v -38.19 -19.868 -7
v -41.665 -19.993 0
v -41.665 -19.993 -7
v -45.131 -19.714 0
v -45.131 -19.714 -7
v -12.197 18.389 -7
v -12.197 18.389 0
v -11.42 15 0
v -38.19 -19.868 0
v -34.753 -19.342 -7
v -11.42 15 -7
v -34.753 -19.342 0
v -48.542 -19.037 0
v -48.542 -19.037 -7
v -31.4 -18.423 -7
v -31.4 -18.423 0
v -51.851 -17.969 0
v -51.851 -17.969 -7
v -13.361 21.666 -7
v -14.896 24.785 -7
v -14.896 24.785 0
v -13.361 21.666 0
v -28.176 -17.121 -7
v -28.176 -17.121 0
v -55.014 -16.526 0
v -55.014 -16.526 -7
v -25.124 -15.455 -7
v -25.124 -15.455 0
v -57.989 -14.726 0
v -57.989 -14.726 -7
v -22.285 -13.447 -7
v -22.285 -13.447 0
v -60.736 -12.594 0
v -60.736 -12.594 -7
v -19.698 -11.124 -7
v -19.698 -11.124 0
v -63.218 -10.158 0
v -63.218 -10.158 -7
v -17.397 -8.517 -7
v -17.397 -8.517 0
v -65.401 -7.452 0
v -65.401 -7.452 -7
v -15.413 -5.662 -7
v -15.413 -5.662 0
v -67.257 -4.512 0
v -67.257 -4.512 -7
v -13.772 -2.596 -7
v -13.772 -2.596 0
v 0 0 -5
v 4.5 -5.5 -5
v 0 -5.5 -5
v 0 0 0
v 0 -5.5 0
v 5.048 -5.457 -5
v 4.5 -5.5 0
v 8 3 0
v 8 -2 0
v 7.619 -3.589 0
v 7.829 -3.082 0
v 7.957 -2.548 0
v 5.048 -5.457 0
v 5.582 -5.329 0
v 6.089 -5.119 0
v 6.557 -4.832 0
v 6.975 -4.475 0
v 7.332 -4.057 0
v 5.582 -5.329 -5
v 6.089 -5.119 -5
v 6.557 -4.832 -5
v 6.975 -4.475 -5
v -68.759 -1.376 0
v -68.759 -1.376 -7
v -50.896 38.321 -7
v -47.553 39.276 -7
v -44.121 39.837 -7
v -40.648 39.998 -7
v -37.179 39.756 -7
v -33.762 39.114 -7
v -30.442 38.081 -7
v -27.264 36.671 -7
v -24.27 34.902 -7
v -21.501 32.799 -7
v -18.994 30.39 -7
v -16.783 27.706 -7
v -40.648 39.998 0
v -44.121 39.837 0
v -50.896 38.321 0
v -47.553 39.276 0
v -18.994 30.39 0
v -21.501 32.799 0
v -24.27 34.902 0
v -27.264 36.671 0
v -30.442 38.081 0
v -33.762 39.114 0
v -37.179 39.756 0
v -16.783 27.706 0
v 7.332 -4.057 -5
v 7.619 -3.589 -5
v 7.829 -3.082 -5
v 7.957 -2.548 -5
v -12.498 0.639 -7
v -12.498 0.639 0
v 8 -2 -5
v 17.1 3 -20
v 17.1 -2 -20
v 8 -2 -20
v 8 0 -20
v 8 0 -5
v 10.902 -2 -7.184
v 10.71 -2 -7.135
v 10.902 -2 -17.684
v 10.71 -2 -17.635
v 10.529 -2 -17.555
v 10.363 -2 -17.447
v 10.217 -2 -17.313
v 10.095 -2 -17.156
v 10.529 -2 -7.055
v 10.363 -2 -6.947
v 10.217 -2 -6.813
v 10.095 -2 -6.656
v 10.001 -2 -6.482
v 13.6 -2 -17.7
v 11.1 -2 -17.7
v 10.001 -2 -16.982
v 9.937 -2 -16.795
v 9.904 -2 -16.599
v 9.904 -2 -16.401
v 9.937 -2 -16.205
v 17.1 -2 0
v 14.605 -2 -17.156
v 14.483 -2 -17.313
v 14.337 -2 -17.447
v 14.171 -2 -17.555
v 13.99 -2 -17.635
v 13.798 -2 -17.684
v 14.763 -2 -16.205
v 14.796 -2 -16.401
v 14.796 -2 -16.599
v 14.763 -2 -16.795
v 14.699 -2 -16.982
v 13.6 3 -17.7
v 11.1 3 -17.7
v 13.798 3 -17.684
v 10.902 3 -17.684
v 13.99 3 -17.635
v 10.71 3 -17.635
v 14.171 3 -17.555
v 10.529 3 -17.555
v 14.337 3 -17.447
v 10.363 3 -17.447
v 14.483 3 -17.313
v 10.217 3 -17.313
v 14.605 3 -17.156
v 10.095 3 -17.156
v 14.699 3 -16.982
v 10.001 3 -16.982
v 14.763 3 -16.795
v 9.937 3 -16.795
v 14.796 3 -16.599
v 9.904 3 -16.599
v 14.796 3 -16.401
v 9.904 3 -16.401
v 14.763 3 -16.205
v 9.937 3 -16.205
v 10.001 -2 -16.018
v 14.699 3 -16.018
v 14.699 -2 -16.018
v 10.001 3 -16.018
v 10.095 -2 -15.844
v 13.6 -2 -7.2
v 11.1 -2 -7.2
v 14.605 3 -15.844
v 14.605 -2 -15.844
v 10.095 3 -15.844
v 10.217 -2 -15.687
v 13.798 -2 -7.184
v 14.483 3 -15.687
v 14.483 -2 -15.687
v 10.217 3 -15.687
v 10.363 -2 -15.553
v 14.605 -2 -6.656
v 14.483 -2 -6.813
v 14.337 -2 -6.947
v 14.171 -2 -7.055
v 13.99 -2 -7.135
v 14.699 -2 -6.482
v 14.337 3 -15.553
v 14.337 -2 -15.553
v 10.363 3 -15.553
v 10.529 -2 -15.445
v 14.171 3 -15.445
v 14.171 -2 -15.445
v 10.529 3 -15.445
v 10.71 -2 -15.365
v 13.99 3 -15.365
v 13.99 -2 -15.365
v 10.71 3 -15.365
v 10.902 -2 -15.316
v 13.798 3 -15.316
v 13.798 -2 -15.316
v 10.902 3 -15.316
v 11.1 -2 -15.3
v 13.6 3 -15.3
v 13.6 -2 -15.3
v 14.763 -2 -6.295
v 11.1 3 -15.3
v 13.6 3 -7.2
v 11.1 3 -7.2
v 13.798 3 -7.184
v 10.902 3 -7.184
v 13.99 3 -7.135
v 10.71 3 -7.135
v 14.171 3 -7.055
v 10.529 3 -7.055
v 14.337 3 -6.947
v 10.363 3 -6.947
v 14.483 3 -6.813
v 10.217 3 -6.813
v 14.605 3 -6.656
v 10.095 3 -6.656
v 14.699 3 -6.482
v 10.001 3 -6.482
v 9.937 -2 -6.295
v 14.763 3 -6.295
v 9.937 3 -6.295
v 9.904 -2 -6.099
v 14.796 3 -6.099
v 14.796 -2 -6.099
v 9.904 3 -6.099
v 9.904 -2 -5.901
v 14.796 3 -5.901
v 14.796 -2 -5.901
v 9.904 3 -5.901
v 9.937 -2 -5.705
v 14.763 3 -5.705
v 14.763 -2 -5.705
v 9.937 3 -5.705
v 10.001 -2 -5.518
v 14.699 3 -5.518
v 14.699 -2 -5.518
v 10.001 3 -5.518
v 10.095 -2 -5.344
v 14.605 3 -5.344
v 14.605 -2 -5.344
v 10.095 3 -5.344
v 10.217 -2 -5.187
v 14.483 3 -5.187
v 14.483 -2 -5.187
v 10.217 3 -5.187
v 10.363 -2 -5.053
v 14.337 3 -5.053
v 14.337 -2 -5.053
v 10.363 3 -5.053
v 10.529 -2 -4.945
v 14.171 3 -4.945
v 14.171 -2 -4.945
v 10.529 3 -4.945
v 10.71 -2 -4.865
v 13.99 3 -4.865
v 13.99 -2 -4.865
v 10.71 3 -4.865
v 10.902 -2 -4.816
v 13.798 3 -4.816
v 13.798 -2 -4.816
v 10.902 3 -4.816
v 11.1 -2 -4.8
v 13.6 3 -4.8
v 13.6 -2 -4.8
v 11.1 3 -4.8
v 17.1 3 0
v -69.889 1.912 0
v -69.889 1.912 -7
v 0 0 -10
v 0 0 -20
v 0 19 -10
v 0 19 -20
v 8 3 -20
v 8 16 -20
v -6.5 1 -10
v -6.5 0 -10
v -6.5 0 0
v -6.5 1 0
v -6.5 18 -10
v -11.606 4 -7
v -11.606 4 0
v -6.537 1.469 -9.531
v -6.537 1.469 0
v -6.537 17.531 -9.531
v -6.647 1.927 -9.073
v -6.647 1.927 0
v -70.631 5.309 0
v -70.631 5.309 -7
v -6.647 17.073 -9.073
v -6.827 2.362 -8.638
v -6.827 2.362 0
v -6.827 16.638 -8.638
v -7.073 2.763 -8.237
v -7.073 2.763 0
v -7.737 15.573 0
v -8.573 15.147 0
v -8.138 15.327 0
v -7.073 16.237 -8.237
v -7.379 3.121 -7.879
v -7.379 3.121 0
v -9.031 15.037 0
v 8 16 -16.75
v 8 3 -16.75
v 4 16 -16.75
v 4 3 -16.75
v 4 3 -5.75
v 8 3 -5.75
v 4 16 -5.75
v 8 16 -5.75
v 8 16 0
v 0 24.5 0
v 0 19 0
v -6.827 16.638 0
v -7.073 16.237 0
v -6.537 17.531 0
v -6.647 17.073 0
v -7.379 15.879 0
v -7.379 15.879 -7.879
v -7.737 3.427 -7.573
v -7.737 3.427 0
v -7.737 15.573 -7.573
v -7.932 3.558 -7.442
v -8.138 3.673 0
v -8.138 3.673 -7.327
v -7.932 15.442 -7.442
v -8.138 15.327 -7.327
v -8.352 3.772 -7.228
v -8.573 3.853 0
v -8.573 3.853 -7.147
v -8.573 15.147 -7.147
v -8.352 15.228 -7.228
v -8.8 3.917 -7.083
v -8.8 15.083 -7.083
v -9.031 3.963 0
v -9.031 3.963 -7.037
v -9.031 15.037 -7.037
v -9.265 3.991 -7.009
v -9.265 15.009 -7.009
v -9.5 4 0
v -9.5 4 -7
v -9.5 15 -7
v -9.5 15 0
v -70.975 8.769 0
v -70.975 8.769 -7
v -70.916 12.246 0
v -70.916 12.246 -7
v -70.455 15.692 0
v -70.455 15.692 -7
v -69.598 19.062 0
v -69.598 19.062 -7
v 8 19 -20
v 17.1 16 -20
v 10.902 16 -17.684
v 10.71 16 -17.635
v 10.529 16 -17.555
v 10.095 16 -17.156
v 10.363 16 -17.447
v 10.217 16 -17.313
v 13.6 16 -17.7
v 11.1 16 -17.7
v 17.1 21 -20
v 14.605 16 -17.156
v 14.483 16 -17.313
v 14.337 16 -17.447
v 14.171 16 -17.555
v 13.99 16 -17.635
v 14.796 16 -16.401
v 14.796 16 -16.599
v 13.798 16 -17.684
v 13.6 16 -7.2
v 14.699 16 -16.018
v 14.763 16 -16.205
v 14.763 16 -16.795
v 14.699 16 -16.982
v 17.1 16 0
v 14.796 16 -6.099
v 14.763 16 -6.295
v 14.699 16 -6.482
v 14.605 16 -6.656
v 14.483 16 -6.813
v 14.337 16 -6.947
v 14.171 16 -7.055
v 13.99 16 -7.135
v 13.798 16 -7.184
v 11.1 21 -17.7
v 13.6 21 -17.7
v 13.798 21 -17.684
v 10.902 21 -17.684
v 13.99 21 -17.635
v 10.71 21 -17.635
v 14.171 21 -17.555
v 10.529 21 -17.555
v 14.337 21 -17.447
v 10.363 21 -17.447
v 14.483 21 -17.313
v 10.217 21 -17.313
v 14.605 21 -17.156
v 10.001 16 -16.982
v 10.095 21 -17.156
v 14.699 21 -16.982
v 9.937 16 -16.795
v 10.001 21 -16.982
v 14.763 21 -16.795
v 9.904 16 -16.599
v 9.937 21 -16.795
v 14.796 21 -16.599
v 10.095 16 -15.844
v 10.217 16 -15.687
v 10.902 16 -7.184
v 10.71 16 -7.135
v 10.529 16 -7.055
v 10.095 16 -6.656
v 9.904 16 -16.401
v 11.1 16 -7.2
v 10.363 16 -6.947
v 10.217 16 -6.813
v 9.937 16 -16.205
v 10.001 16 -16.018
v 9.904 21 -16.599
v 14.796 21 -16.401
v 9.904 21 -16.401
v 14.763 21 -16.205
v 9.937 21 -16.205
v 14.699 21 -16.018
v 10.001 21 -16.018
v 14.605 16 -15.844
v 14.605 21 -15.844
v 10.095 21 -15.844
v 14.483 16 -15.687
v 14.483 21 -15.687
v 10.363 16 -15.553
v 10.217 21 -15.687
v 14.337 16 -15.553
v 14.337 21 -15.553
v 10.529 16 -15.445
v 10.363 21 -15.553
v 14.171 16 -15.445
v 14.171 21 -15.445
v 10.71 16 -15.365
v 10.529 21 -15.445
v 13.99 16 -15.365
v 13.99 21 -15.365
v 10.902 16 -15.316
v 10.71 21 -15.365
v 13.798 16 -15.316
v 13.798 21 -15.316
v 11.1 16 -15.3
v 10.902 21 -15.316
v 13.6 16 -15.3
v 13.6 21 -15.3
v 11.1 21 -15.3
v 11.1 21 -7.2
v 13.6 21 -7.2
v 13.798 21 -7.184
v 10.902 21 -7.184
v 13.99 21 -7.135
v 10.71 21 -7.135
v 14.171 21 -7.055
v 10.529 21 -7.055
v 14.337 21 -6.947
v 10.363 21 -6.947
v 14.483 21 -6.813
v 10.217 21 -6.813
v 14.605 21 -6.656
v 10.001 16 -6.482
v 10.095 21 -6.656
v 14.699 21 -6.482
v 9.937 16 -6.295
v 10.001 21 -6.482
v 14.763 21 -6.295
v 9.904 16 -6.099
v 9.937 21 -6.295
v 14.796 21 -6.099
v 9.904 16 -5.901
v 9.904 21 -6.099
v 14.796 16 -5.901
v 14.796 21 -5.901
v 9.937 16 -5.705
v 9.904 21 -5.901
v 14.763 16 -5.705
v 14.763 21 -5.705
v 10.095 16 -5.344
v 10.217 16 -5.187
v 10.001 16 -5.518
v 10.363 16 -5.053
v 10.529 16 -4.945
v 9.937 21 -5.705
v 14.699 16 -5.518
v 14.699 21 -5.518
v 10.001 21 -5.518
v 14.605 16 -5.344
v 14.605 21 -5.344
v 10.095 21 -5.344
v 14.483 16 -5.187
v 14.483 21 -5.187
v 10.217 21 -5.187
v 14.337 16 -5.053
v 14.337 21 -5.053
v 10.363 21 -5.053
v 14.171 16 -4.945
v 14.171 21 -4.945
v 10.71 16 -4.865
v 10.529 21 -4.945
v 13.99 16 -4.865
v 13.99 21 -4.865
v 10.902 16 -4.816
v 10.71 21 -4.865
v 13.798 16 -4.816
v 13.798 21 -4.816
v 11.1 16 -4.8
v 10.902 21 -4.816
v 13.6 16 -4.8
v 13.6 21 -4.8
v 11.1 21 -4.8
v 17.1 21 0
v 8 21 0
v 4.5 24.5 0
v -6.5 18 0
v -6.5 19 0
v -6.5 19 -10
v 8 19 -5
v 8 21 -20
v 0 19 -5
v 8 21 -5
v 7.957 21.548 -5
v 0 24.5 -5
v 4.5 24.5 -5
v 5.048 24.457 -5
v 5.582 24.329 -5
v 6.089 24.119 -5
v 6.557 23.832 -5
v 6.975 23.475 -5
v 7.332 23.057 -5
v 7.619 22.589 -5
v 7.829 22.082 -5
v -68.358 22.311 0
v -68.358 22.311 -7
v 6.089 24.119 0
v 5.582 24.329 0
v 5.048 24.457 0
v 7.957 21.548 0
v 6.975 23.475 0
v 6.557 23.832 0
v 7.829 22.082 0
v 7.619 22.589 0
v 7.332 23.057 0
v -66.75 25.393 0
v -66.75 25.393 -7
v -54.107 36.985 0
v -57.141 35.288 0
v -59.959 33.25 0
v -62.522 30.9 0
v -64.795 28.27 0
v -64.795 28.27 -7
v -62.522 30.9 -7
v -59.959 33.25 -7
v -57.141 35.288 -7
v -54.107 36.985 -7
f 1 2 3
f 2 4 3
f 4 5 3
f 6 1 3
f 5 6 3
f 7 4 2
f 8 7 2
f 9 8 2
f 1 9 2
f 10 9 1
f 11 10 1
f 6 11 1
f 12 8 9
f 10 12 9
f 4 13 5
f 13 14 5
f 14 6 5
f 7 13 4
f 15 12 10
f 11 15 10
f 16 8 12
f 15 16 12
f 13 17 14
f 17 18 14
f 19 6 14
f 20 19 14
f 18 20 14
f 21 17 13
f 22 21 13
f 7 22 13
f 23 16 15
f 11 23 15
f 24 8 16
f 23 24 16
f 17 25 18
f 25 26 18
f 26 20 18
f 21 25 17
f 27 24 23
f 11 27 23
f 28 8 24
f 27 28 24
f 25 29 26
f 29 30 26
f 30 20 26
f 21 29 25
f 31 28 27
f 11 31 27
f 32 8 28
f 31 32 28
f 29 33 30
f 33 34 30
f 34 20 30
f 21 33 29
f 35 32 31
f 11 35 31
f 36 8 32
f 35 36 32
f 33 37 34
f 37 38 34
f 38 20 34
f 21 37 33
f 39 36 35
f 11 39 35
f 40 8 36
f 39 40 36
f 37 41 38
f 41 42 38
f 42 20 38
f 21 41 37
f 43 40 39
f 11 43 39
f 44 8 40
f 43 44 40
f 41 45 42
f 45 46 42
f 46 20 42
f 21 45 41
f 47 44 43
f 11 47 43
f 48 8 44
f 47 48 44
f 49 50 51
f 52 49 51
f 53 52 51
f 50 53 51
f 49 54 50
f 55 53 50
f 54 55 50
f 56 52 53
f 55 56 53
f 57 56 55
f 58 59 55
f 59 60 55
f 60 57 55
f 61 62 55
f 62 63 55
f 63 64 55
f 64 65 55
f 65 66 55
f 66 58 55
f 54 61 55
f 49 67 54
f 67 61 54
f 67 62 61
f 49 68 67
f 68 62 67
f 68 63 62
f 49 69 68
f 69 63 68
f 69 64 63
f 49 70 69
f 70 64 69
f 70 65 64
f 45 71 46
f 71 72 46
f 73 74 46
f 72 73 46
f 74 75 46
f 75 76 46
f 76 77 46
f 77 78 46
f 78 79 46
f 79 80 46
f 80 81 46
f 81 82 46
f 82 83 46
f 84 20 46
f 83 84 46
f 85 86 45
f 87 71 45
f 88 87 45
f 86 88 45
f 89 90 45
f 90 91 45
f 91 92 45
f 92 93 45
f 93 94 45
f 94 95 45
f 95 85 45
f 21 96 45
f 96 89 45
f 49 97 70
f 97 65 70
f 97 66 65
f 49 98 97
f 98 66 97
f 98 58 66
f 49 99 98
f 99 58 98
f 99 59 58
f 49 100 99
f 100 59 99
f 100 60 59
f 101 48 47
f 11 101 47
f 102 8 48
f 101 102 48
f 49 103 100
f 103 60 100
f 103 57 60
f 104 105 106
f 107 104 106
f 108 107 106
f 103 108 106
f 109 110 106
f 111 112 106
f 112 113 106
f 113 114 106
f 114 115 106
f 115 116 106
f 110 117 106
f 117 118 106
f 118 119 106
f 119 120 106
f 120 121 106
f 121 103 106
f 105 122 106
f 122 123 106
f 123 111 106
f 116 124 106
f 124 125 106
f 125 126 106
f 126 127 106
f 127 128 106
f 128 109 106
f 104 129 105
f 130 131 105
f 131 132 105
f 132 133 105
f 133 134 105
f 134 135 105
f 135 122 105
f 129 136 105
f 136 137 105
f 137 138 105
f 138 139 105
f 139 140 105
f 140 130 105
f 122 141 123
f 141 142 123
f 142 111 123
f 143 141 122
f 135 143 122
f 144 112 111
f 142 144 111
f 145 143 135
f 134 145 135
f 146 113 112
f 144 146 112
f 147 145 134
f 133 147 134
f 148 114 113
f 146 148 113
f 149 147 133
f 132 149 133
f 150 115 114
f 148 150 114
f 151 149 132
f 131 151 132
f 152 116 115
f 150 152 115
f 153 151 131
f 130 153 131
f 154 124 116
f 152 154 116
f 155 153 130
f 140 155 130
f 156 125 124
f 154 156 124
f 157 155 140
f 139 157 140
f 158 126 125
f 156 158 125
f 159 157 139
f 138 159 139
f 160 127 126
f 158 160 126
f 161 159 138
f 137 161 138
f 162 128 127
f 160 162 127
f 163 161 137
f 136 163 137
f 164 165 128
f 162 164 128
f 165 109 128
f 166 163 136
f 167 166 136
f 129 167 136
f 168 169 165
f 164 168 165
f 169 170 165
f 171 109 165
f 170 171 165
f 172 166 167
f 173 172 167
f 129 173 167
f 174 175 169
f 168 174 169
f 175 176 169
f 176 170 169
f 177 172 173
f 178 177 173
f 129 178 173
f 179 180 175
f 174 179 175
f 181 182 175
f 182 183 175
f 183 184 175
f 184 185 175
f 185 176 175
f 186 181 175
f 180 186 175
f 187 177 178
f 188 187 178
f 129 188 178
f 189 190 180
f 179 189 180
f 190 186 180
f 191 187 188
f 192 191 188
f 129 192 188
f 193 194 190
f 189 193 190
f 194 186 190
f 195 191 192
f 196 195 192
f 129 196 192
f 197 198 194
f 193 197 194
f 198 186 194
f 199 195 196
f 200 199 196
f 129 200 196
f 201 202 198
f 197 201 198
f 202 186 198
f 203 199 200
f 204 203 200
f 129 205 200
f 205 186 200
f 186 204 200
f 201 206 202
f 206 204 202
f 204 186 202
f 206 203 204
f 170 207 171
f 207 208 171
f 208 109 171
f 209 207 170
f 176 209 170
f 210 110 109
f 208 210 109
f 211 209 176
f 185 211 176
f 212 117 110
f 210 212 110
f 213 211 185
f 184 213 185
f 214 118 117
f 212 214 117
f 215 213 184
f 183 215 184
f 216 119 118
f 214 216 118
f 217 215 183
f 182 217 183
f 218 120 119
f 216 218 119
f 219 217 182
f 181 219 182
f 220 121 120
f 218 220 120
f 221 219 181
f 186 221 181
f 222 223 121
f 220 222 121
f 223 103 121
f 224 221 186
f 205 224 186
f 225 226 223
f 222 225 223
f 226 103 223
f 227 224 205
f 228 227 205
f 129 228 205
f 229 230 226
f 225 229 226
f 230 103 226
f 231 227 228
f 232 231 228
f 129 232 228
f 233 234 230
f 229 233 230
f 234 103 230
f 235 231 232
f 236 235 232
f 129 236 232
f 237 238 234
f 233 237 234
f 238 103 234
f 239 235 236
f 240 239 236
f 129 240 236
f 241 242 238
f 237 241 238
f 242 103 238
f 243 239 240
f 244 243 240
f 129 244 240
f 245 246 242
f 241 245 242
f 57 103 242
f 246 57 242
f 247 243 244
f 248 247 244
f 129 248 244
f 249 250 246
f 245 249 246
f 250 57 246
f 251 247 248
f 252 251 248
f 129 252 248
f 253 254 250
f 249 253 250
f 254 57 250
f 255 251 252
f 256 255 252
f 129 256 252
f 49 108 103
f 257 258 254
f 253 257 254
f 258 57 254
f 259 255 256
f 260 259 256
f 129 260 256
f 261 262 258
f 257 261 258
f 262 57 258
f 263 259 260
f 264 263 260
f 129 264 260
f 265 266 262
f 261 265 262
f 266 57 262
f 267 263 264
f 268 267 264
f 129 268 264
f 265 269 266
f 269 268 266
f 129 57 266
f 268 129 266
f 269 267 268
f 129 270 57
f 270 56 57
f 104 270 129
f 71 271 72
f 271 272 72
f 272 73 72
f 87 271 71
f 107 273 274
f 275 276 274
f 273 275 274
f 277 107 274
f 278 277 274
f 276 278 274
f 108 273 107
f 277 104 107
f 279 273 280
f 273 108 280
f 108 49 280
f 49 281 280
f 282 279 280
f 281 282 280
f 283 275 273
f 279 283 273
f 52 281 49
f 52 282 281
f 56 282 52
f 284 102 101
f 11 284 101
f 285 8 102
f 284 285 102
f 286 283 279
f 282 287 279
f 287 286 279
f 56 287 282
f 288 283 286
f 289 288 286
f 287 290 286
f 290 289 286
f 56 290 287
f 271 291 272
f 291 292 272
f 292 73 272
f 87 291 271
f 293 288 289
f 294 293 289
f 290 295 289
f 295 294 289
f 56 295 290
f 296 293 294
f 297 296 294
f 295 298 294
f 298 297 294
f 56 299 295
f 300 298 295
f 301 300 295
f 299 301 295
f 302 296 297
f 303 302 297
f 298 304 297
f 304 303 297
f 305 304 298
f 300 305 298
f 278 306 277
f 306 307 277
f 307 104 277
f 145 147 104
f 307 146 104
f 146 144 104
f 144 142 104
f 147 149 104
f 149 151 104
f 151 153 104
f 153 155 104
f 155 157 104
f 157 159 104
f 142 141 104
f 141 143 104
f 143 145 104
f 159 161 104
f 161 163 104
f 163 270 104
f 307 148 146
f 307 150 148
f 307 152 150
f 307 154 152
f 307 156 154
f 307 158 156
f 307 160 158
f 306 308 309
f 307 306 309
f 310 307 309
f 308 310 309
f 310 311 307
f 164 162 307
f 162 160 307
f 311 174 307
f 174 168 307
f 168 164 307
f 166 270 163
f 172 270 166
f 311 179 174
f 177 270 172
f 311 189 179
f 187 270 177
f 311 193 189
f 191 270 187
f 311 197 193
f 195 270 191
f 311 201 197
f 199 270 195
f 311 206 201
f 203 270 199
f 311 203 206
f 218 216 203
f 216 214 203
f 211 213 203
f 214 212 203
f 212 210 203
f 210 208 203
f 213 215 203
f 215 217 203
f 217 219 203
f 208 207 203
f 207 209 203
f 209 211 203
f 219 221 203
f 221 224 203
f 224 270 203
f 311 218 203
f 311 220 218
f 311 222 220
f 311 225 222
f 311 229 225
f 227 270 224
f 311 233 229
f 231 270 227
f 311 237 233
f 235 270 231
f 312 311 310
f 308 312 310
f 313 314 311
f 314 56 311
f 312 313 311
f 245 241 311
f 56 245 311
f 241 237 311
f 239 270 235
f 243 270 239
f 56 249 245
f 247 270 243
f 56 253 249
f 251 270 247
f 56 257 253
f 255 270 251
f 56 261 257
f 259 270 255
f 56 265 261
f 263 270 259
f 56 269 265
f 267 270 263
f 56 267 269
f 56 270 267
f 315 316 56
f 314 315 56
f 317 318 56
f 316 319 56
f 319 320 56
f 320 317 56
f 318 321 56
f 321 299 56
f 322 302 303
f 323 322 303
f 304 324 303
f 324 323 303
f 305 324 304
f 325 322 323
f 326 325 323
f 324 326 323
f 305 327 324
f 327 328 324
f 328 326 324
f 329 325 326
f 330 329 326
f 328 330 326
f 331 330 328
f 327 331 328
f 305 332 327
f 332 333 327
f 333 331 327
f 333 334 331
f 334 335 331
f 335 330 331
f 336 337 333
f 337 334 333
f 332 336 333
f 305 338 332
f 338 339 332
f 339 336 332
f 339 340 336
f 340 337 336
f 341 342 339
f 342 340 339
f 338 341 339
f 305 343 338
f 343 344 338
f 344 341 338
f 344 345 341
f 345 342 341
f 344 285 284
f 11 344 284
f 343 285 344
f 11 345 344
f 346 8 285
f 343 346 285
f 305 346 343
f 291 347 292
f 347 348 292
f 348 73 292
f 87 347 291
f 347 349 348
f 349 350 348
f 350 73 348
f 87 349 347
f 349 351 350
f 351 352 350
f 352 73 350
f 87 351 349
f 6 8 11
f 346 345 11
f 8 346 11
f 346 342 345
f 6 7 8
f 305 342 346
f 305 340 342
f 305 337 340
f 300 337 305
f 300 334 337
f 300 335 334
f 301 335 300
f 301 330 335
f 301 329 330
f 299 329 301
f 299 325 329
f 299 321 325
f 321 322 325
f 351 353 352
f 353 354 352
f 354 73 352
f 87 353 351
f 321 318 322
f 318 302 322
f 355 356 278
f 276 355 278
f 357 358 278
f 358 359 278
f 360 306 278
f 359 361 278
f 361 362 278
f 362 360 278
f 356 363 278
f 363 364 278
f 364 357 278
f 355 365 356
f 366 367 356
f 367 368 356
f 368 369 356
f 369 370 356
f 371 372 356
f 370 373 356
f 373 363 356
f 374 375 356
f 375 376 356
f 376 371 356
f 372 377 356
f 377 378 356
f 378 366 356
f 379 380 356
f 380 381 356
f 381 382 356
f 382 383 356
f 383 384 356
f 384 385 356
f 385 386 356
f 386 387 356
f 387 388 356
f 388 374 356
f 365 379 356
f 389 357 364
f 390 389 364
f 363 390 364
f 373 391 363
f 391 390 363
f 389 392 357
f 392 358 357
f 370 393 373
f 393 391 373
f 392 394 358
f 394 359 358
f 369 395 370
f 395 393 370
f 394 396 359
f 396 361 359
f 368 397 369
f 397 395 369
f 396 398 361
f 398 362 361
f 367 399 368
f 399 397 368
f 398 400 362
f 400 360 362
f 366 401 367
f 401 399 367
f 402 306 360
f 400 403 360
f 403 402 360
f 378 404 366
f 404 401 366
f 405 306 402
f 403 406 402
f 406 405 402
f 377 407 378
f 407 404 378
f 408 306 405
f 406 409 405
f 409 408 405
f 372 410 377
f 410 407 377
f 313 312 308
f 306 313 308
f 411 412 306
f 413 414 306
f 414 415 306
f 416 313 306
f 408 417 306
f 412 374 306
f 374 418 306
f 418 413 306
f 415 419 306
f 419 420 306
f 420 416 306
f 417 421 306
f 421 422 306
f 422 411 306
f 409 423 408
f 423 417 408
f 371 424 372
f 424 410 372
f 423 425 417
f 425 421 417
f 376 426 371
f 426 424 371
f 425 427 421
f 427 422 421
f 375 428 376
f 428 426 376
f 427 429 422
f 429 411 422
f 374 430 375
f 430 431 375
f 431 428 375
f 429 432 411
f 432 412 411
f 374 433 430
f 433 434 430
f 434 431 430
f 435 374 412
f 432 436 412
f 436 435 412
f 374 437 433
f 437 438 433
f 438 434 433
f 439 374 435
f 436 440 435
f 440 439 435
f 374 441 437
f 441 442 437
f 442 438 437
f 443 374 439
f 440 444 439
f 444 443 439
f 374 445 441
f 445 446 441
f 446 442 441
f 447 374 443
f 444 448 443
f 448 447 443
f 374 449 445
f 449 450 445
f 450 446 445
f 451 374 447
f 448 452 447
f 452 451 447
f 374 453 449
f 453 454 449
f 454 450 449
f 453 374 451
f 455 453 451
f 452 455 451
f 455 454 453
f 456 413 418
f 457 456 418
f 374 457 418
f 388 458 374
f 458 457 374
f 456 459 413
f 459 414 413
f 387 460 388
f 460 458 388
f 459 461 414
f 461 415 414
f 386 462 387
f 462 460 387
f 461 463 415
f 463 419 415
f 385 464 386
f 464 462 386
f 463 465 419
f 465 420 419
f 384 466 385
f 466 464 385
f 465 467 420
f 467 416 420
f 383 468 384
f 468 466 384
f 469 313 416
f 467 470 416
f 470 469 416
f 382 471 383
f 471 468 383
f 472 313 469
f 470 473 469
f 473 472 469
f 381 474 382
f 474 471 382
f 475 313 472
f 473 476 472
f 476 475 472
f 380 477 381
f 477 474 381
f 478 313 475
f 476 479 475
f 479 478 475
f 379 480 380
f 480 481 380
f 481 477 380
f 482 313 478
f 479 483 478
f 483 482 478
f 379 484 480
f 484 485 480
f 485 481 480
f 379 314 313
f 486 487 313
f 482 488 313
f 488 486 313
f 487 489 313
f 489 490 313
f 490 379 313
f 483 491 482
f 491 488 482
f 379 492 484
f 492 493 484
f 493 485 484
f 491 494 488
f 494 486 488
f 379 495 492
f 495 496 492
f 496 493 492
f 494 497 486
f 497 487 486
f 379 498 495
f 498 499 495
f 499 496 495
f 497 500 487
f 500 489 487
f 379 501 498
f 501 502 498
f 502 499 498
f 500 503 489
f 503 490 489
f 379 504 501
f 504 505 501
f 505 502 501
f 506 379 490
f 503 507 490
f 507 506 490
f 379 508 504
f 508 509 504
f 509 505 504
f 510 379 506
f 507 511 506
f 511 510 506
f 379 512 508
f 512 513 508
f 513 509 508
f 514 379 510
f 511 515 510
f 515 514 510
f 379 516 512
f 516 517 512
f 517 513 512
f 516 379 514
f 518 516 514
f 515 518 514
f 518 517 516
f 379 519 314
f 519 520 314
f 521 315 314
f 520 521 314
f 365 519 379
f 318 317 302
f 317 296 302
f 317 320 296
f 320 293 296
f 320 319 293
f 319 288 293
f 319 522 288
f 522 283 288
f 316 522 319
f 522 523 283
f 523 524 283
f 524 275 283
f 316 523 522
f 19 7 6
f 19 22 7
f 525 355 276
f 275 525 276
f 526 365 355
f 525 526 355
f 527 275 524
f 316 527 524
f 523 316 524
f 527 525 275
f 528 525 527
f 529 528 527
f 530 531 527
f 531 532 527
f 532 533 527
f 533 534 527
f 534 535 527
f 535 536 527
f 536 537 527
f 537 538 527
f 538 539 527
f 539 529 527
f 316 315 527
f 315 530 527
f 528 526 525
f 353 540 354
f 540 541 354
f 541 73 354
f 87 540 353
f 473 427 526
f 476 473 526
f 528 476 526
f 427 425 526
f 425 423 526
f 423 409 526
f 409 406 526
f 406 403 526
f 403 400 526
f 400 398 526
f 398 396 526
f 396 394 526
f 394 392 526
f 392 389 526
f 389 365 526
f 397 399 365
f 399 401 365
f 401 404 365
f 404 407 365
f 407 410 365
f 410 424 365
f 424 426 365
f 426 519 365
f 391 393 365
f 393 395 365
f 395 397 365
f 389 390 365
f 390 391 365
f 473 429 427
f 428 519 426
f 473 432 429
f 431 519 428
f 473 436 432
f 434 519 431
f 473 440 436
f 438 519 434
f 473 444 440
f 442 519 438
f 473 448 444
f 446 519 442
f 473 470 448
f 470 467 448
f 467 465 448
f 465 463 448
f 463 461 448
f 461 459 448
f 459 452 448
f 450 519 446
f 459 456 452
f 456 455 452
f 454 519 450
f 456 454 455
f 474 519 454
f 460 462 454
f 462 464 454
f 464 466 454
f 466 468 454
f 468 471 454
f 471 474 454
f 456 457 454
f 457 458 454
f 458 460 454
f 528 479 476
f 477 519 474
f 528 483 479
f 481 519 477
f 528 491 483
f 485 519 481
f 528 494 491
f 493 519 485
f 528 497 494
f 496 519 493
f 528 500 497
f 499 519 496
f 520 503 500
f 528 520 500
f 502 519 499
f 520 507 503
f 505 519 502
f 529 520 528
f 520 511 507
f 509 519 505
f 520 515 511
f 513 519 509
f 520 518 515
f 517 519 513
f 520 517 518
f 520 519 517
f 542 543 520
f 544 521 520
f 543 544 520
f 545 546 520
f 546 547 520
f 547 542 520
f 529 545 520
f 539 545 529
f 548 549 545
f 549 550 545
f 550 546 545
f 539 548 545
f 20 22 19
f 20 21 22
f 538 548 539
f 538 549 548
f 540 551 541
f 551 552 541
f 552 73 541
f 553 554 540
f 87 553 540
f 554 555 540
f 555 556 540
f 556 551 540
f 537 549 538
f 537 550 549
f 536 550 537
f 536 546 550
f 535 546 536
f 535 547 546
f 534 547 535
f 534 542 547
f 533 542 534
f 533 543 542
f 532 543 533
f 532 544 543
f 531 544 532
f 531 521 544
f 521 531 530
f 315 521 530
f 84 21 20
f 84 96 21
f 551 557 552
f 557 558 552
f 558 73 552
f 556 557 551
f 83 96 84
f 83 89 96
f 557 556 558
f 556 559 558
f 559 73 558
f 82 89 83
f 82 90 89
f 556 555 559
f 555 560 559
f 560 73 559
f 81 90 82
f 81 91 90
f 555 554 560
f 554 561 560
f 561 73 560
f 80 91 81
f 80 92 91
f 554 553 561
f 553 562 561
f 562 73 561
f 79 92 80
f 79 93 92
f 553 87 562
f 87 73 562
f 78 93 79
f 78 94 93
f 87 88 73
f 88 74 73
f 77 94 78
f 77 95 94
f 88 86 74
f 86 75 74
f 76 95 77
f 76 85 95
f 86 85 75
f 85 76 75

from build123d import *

# Parameters (mm, degrees)
SKETCH_1_W          = 10
SKETCH_1_H          = 19
EXTRUDE_1_DEPTH     = 6.5
EXTRUDE_2_DEPTH     = 7
FILLET_1_R          = 3
SKETCH_3_W          = 5
SKETCH_3_H          = 30
EXTRUDE_3_DEPTH     = 8
SKETCH_4_W          = 8
SKETCH_4_H          = 19
EXTRUDE_4_DEPTH     = 15
SKETCH_6_W          = 11
SKETCH_6_H          = 13
CUT_EXTRUDE_1_DEPTH = 4
SKETCH_8_W          = 9.1
SKETCH_8_H          = 20
EXTRUDE_5_DEPTH     = 3
SKETCH_8_2_W        = 9.1
SKETCH_8_2_H        = 20
EXTRUDE_6_DEPTH     = 2
FILLET_2_R          = 3.5
FILLET_3_R          = 3


with BuildPart() as part:
    # 草圖1 → 填料-伸長1 (new body)
    with BuildSketch(Plane(origin=(0, 0, 0), x_dir=(0, 0, -1), z_dir=(1, 0, 0))):
        with Locations((5, 9.5)):
            Rectangle(SKETCH_1_W, SKETCH_1_H)
    extrude(amount=-EXTRUDE_1_DEPTH)

    # 草圖2 → 填料-伸長2 (add)
    with BuildSketch(Plane.XY):
        with BuildLine():
            Line((-11.419601085, 15), (-6.5, 15))
            Line((-6.5, 15), (-6.5, 4))
            Line((-6.5, 4), (-11.606123087, 4))
            ThreePointArc((-11.606123087, 4), (-70.995688063, 10.508623254), (-11.419601085, 15))
        make_face()
    extrude(amount=-EXTRUDE_2_DEPTH)

    # 圓角1
    fillet_1_edges = [part.edges().sort_by_distance(p)[0] for p in [
        (-6.5, 9.5, -7),
    ]]
    fillet(fillet_1_edges, radius=FILLET_1_R - 0.0001)  # a hair under: the kernel refuses the full size

    # 草圖3 → 填料-伸長3 (add)
    with BuildSketch(Plane(origin=(0, 0, 0), x_dir=(0, 0, -1), z_dir=(1, 0, 0))):
        with Locations((2.5, 9.5)):
            Rectangle(SKETCH_3_W, SKETCH_3_H)
    extrude(amount=EXTRUDE_3_DEPTH)

    # 草圖4 → 填料-伸長4 (add)
    with BuildSketch(Plane(origin=(0, 0, -5), x_dir=(-1, 0, 0), z_dir=(0, 0, -1))):
        with Locations((-4, 9.5)):
            Rectangle(SKETCH_4_W, SKETCH_4_H)
    extrude(amount=EXTRUDE_4_DEPTH)

    # 草圖6 → 除料-伸長1 (cut)
    with BuildSketch(Plane(origin=(8, 0, 0), x_dir=(0, 0, -1), z_dir=(1, 0, 0))):
        with Locations((11.25, 9.5)):
            Rectangle(SKETCH_6_W, SKETCH_6_H)
    extrude(amount=-CUT_EXTRUDE_1_DEPTH, mode=Mode.SUBTRACT)

    # 草圖8 → 填料-伸長5 (add)
    with BuildSketch(Plane(origin=(0, 19, 0), x_dir=(1, 0, 0), z_dir=(0, 1, 0))):
        with Locations((12.55, 10)):
            Rectangle(SKETCH_8_W, SKETCH_8_H)
        with BuildLine():
            Line((13.6, 15.3), (11.1, 15.3))
            ThreePointArc((11.1, 15.3), (9.9, 16.5), (11.1, 17.7))
            Line((11.1, 17.7), (13.6, 17.7))
            ThreePointArc((13.6, 17.7), (14.8, 16.5), (13.6, 15.3))
        make_face(mode=Mode.SUBTRACT)
        with BuildLine():
            Line((13.6, 4.8), (11.1, 4.8))
            ThreePointArc((11.1, 4.8), (9.9, 6), (11.1, 7.2))
            Line((11.1, 7.2), (13.6, 7.2))
            ThreePointArc((13.6, 7.2), (14.8, 6), (13.6, 4.8))
        make_face(mode=Mode.SUBTRACT)
    extrude_5 = extrude(amount=-EXTRUDE_5_DEPTH)

    # 鏡射1: 填料-伸長5 across plane
    add(extrude_5.mirror(Plane.ZX.offset(9.5)))

    # 草圖8<2> → 填料-伸長6 (add)
    with BuildSketch(Plane(origin=(0, 19, 0), x_dir=(1, 0, 0), z_dir=(0, 1, 0))):
        with Locations((12.55, 10)):
            Rectangle(SKETCH_8_2_W, SKETCH_8_2_H)
        with BuildLine():
            Line((13.6, 15.3), (11.1, 15.3))
            ThreePointArc((11.1, 15.3), (9.9, 16.5), (11.1, 17.7))
            Line((11.1, 17.7), (13.6, 17.7))
            ThreePointArc((13.6, 17.7), (14.8, 16.5), (13.6, 15.3))
        make_face(mode=Mode.SUBTRACT)
        with BuildLine():
            Line((13.6, 4.8), (11.1, 4.8))
            ThreePointArc((11.1, 4.8), (9.9, 6), (11.1, 7.2))
            Line((11.1, 7.2), (13.6, 7.2))
            ThreePointArc((13.6, 7.2), (14.8, 6), (13.6, 4.8))
        make_face(mode=Mode.SUBTRACT)
    extrude_6 = extrude(amount=EXTRUDE_6_DEPTH)

    # 鏡射2: 填料-伸長6 across plane
    add(extrude_6.mirror(Plane.ZX.offset(9.5)))

    # 圓角2
    fillet_2_edges = [part.edges().sort_by_distance(p)[0] for p in [
        (8, 24.5, -2.5),
        (8, -5.5, -2.5),
    ]]
    fillet(fillet_2_edges, radius=FILLET_2_R - 0.0001)  # a hair under: the kernel refuses the full size

    # 圓角3
    fillet_3_edges = [part.edges().sort_by_distance(p)[0] for p in [
        (-6.5, 4, -4.99995),
        (-6.5, 15, -4.99995),
    ]]
    fillet(fillet_3_edges, radius=FILLET_3_R - 0.0001)  # a hair under: the kernel refuses the full size


solid = part.part
